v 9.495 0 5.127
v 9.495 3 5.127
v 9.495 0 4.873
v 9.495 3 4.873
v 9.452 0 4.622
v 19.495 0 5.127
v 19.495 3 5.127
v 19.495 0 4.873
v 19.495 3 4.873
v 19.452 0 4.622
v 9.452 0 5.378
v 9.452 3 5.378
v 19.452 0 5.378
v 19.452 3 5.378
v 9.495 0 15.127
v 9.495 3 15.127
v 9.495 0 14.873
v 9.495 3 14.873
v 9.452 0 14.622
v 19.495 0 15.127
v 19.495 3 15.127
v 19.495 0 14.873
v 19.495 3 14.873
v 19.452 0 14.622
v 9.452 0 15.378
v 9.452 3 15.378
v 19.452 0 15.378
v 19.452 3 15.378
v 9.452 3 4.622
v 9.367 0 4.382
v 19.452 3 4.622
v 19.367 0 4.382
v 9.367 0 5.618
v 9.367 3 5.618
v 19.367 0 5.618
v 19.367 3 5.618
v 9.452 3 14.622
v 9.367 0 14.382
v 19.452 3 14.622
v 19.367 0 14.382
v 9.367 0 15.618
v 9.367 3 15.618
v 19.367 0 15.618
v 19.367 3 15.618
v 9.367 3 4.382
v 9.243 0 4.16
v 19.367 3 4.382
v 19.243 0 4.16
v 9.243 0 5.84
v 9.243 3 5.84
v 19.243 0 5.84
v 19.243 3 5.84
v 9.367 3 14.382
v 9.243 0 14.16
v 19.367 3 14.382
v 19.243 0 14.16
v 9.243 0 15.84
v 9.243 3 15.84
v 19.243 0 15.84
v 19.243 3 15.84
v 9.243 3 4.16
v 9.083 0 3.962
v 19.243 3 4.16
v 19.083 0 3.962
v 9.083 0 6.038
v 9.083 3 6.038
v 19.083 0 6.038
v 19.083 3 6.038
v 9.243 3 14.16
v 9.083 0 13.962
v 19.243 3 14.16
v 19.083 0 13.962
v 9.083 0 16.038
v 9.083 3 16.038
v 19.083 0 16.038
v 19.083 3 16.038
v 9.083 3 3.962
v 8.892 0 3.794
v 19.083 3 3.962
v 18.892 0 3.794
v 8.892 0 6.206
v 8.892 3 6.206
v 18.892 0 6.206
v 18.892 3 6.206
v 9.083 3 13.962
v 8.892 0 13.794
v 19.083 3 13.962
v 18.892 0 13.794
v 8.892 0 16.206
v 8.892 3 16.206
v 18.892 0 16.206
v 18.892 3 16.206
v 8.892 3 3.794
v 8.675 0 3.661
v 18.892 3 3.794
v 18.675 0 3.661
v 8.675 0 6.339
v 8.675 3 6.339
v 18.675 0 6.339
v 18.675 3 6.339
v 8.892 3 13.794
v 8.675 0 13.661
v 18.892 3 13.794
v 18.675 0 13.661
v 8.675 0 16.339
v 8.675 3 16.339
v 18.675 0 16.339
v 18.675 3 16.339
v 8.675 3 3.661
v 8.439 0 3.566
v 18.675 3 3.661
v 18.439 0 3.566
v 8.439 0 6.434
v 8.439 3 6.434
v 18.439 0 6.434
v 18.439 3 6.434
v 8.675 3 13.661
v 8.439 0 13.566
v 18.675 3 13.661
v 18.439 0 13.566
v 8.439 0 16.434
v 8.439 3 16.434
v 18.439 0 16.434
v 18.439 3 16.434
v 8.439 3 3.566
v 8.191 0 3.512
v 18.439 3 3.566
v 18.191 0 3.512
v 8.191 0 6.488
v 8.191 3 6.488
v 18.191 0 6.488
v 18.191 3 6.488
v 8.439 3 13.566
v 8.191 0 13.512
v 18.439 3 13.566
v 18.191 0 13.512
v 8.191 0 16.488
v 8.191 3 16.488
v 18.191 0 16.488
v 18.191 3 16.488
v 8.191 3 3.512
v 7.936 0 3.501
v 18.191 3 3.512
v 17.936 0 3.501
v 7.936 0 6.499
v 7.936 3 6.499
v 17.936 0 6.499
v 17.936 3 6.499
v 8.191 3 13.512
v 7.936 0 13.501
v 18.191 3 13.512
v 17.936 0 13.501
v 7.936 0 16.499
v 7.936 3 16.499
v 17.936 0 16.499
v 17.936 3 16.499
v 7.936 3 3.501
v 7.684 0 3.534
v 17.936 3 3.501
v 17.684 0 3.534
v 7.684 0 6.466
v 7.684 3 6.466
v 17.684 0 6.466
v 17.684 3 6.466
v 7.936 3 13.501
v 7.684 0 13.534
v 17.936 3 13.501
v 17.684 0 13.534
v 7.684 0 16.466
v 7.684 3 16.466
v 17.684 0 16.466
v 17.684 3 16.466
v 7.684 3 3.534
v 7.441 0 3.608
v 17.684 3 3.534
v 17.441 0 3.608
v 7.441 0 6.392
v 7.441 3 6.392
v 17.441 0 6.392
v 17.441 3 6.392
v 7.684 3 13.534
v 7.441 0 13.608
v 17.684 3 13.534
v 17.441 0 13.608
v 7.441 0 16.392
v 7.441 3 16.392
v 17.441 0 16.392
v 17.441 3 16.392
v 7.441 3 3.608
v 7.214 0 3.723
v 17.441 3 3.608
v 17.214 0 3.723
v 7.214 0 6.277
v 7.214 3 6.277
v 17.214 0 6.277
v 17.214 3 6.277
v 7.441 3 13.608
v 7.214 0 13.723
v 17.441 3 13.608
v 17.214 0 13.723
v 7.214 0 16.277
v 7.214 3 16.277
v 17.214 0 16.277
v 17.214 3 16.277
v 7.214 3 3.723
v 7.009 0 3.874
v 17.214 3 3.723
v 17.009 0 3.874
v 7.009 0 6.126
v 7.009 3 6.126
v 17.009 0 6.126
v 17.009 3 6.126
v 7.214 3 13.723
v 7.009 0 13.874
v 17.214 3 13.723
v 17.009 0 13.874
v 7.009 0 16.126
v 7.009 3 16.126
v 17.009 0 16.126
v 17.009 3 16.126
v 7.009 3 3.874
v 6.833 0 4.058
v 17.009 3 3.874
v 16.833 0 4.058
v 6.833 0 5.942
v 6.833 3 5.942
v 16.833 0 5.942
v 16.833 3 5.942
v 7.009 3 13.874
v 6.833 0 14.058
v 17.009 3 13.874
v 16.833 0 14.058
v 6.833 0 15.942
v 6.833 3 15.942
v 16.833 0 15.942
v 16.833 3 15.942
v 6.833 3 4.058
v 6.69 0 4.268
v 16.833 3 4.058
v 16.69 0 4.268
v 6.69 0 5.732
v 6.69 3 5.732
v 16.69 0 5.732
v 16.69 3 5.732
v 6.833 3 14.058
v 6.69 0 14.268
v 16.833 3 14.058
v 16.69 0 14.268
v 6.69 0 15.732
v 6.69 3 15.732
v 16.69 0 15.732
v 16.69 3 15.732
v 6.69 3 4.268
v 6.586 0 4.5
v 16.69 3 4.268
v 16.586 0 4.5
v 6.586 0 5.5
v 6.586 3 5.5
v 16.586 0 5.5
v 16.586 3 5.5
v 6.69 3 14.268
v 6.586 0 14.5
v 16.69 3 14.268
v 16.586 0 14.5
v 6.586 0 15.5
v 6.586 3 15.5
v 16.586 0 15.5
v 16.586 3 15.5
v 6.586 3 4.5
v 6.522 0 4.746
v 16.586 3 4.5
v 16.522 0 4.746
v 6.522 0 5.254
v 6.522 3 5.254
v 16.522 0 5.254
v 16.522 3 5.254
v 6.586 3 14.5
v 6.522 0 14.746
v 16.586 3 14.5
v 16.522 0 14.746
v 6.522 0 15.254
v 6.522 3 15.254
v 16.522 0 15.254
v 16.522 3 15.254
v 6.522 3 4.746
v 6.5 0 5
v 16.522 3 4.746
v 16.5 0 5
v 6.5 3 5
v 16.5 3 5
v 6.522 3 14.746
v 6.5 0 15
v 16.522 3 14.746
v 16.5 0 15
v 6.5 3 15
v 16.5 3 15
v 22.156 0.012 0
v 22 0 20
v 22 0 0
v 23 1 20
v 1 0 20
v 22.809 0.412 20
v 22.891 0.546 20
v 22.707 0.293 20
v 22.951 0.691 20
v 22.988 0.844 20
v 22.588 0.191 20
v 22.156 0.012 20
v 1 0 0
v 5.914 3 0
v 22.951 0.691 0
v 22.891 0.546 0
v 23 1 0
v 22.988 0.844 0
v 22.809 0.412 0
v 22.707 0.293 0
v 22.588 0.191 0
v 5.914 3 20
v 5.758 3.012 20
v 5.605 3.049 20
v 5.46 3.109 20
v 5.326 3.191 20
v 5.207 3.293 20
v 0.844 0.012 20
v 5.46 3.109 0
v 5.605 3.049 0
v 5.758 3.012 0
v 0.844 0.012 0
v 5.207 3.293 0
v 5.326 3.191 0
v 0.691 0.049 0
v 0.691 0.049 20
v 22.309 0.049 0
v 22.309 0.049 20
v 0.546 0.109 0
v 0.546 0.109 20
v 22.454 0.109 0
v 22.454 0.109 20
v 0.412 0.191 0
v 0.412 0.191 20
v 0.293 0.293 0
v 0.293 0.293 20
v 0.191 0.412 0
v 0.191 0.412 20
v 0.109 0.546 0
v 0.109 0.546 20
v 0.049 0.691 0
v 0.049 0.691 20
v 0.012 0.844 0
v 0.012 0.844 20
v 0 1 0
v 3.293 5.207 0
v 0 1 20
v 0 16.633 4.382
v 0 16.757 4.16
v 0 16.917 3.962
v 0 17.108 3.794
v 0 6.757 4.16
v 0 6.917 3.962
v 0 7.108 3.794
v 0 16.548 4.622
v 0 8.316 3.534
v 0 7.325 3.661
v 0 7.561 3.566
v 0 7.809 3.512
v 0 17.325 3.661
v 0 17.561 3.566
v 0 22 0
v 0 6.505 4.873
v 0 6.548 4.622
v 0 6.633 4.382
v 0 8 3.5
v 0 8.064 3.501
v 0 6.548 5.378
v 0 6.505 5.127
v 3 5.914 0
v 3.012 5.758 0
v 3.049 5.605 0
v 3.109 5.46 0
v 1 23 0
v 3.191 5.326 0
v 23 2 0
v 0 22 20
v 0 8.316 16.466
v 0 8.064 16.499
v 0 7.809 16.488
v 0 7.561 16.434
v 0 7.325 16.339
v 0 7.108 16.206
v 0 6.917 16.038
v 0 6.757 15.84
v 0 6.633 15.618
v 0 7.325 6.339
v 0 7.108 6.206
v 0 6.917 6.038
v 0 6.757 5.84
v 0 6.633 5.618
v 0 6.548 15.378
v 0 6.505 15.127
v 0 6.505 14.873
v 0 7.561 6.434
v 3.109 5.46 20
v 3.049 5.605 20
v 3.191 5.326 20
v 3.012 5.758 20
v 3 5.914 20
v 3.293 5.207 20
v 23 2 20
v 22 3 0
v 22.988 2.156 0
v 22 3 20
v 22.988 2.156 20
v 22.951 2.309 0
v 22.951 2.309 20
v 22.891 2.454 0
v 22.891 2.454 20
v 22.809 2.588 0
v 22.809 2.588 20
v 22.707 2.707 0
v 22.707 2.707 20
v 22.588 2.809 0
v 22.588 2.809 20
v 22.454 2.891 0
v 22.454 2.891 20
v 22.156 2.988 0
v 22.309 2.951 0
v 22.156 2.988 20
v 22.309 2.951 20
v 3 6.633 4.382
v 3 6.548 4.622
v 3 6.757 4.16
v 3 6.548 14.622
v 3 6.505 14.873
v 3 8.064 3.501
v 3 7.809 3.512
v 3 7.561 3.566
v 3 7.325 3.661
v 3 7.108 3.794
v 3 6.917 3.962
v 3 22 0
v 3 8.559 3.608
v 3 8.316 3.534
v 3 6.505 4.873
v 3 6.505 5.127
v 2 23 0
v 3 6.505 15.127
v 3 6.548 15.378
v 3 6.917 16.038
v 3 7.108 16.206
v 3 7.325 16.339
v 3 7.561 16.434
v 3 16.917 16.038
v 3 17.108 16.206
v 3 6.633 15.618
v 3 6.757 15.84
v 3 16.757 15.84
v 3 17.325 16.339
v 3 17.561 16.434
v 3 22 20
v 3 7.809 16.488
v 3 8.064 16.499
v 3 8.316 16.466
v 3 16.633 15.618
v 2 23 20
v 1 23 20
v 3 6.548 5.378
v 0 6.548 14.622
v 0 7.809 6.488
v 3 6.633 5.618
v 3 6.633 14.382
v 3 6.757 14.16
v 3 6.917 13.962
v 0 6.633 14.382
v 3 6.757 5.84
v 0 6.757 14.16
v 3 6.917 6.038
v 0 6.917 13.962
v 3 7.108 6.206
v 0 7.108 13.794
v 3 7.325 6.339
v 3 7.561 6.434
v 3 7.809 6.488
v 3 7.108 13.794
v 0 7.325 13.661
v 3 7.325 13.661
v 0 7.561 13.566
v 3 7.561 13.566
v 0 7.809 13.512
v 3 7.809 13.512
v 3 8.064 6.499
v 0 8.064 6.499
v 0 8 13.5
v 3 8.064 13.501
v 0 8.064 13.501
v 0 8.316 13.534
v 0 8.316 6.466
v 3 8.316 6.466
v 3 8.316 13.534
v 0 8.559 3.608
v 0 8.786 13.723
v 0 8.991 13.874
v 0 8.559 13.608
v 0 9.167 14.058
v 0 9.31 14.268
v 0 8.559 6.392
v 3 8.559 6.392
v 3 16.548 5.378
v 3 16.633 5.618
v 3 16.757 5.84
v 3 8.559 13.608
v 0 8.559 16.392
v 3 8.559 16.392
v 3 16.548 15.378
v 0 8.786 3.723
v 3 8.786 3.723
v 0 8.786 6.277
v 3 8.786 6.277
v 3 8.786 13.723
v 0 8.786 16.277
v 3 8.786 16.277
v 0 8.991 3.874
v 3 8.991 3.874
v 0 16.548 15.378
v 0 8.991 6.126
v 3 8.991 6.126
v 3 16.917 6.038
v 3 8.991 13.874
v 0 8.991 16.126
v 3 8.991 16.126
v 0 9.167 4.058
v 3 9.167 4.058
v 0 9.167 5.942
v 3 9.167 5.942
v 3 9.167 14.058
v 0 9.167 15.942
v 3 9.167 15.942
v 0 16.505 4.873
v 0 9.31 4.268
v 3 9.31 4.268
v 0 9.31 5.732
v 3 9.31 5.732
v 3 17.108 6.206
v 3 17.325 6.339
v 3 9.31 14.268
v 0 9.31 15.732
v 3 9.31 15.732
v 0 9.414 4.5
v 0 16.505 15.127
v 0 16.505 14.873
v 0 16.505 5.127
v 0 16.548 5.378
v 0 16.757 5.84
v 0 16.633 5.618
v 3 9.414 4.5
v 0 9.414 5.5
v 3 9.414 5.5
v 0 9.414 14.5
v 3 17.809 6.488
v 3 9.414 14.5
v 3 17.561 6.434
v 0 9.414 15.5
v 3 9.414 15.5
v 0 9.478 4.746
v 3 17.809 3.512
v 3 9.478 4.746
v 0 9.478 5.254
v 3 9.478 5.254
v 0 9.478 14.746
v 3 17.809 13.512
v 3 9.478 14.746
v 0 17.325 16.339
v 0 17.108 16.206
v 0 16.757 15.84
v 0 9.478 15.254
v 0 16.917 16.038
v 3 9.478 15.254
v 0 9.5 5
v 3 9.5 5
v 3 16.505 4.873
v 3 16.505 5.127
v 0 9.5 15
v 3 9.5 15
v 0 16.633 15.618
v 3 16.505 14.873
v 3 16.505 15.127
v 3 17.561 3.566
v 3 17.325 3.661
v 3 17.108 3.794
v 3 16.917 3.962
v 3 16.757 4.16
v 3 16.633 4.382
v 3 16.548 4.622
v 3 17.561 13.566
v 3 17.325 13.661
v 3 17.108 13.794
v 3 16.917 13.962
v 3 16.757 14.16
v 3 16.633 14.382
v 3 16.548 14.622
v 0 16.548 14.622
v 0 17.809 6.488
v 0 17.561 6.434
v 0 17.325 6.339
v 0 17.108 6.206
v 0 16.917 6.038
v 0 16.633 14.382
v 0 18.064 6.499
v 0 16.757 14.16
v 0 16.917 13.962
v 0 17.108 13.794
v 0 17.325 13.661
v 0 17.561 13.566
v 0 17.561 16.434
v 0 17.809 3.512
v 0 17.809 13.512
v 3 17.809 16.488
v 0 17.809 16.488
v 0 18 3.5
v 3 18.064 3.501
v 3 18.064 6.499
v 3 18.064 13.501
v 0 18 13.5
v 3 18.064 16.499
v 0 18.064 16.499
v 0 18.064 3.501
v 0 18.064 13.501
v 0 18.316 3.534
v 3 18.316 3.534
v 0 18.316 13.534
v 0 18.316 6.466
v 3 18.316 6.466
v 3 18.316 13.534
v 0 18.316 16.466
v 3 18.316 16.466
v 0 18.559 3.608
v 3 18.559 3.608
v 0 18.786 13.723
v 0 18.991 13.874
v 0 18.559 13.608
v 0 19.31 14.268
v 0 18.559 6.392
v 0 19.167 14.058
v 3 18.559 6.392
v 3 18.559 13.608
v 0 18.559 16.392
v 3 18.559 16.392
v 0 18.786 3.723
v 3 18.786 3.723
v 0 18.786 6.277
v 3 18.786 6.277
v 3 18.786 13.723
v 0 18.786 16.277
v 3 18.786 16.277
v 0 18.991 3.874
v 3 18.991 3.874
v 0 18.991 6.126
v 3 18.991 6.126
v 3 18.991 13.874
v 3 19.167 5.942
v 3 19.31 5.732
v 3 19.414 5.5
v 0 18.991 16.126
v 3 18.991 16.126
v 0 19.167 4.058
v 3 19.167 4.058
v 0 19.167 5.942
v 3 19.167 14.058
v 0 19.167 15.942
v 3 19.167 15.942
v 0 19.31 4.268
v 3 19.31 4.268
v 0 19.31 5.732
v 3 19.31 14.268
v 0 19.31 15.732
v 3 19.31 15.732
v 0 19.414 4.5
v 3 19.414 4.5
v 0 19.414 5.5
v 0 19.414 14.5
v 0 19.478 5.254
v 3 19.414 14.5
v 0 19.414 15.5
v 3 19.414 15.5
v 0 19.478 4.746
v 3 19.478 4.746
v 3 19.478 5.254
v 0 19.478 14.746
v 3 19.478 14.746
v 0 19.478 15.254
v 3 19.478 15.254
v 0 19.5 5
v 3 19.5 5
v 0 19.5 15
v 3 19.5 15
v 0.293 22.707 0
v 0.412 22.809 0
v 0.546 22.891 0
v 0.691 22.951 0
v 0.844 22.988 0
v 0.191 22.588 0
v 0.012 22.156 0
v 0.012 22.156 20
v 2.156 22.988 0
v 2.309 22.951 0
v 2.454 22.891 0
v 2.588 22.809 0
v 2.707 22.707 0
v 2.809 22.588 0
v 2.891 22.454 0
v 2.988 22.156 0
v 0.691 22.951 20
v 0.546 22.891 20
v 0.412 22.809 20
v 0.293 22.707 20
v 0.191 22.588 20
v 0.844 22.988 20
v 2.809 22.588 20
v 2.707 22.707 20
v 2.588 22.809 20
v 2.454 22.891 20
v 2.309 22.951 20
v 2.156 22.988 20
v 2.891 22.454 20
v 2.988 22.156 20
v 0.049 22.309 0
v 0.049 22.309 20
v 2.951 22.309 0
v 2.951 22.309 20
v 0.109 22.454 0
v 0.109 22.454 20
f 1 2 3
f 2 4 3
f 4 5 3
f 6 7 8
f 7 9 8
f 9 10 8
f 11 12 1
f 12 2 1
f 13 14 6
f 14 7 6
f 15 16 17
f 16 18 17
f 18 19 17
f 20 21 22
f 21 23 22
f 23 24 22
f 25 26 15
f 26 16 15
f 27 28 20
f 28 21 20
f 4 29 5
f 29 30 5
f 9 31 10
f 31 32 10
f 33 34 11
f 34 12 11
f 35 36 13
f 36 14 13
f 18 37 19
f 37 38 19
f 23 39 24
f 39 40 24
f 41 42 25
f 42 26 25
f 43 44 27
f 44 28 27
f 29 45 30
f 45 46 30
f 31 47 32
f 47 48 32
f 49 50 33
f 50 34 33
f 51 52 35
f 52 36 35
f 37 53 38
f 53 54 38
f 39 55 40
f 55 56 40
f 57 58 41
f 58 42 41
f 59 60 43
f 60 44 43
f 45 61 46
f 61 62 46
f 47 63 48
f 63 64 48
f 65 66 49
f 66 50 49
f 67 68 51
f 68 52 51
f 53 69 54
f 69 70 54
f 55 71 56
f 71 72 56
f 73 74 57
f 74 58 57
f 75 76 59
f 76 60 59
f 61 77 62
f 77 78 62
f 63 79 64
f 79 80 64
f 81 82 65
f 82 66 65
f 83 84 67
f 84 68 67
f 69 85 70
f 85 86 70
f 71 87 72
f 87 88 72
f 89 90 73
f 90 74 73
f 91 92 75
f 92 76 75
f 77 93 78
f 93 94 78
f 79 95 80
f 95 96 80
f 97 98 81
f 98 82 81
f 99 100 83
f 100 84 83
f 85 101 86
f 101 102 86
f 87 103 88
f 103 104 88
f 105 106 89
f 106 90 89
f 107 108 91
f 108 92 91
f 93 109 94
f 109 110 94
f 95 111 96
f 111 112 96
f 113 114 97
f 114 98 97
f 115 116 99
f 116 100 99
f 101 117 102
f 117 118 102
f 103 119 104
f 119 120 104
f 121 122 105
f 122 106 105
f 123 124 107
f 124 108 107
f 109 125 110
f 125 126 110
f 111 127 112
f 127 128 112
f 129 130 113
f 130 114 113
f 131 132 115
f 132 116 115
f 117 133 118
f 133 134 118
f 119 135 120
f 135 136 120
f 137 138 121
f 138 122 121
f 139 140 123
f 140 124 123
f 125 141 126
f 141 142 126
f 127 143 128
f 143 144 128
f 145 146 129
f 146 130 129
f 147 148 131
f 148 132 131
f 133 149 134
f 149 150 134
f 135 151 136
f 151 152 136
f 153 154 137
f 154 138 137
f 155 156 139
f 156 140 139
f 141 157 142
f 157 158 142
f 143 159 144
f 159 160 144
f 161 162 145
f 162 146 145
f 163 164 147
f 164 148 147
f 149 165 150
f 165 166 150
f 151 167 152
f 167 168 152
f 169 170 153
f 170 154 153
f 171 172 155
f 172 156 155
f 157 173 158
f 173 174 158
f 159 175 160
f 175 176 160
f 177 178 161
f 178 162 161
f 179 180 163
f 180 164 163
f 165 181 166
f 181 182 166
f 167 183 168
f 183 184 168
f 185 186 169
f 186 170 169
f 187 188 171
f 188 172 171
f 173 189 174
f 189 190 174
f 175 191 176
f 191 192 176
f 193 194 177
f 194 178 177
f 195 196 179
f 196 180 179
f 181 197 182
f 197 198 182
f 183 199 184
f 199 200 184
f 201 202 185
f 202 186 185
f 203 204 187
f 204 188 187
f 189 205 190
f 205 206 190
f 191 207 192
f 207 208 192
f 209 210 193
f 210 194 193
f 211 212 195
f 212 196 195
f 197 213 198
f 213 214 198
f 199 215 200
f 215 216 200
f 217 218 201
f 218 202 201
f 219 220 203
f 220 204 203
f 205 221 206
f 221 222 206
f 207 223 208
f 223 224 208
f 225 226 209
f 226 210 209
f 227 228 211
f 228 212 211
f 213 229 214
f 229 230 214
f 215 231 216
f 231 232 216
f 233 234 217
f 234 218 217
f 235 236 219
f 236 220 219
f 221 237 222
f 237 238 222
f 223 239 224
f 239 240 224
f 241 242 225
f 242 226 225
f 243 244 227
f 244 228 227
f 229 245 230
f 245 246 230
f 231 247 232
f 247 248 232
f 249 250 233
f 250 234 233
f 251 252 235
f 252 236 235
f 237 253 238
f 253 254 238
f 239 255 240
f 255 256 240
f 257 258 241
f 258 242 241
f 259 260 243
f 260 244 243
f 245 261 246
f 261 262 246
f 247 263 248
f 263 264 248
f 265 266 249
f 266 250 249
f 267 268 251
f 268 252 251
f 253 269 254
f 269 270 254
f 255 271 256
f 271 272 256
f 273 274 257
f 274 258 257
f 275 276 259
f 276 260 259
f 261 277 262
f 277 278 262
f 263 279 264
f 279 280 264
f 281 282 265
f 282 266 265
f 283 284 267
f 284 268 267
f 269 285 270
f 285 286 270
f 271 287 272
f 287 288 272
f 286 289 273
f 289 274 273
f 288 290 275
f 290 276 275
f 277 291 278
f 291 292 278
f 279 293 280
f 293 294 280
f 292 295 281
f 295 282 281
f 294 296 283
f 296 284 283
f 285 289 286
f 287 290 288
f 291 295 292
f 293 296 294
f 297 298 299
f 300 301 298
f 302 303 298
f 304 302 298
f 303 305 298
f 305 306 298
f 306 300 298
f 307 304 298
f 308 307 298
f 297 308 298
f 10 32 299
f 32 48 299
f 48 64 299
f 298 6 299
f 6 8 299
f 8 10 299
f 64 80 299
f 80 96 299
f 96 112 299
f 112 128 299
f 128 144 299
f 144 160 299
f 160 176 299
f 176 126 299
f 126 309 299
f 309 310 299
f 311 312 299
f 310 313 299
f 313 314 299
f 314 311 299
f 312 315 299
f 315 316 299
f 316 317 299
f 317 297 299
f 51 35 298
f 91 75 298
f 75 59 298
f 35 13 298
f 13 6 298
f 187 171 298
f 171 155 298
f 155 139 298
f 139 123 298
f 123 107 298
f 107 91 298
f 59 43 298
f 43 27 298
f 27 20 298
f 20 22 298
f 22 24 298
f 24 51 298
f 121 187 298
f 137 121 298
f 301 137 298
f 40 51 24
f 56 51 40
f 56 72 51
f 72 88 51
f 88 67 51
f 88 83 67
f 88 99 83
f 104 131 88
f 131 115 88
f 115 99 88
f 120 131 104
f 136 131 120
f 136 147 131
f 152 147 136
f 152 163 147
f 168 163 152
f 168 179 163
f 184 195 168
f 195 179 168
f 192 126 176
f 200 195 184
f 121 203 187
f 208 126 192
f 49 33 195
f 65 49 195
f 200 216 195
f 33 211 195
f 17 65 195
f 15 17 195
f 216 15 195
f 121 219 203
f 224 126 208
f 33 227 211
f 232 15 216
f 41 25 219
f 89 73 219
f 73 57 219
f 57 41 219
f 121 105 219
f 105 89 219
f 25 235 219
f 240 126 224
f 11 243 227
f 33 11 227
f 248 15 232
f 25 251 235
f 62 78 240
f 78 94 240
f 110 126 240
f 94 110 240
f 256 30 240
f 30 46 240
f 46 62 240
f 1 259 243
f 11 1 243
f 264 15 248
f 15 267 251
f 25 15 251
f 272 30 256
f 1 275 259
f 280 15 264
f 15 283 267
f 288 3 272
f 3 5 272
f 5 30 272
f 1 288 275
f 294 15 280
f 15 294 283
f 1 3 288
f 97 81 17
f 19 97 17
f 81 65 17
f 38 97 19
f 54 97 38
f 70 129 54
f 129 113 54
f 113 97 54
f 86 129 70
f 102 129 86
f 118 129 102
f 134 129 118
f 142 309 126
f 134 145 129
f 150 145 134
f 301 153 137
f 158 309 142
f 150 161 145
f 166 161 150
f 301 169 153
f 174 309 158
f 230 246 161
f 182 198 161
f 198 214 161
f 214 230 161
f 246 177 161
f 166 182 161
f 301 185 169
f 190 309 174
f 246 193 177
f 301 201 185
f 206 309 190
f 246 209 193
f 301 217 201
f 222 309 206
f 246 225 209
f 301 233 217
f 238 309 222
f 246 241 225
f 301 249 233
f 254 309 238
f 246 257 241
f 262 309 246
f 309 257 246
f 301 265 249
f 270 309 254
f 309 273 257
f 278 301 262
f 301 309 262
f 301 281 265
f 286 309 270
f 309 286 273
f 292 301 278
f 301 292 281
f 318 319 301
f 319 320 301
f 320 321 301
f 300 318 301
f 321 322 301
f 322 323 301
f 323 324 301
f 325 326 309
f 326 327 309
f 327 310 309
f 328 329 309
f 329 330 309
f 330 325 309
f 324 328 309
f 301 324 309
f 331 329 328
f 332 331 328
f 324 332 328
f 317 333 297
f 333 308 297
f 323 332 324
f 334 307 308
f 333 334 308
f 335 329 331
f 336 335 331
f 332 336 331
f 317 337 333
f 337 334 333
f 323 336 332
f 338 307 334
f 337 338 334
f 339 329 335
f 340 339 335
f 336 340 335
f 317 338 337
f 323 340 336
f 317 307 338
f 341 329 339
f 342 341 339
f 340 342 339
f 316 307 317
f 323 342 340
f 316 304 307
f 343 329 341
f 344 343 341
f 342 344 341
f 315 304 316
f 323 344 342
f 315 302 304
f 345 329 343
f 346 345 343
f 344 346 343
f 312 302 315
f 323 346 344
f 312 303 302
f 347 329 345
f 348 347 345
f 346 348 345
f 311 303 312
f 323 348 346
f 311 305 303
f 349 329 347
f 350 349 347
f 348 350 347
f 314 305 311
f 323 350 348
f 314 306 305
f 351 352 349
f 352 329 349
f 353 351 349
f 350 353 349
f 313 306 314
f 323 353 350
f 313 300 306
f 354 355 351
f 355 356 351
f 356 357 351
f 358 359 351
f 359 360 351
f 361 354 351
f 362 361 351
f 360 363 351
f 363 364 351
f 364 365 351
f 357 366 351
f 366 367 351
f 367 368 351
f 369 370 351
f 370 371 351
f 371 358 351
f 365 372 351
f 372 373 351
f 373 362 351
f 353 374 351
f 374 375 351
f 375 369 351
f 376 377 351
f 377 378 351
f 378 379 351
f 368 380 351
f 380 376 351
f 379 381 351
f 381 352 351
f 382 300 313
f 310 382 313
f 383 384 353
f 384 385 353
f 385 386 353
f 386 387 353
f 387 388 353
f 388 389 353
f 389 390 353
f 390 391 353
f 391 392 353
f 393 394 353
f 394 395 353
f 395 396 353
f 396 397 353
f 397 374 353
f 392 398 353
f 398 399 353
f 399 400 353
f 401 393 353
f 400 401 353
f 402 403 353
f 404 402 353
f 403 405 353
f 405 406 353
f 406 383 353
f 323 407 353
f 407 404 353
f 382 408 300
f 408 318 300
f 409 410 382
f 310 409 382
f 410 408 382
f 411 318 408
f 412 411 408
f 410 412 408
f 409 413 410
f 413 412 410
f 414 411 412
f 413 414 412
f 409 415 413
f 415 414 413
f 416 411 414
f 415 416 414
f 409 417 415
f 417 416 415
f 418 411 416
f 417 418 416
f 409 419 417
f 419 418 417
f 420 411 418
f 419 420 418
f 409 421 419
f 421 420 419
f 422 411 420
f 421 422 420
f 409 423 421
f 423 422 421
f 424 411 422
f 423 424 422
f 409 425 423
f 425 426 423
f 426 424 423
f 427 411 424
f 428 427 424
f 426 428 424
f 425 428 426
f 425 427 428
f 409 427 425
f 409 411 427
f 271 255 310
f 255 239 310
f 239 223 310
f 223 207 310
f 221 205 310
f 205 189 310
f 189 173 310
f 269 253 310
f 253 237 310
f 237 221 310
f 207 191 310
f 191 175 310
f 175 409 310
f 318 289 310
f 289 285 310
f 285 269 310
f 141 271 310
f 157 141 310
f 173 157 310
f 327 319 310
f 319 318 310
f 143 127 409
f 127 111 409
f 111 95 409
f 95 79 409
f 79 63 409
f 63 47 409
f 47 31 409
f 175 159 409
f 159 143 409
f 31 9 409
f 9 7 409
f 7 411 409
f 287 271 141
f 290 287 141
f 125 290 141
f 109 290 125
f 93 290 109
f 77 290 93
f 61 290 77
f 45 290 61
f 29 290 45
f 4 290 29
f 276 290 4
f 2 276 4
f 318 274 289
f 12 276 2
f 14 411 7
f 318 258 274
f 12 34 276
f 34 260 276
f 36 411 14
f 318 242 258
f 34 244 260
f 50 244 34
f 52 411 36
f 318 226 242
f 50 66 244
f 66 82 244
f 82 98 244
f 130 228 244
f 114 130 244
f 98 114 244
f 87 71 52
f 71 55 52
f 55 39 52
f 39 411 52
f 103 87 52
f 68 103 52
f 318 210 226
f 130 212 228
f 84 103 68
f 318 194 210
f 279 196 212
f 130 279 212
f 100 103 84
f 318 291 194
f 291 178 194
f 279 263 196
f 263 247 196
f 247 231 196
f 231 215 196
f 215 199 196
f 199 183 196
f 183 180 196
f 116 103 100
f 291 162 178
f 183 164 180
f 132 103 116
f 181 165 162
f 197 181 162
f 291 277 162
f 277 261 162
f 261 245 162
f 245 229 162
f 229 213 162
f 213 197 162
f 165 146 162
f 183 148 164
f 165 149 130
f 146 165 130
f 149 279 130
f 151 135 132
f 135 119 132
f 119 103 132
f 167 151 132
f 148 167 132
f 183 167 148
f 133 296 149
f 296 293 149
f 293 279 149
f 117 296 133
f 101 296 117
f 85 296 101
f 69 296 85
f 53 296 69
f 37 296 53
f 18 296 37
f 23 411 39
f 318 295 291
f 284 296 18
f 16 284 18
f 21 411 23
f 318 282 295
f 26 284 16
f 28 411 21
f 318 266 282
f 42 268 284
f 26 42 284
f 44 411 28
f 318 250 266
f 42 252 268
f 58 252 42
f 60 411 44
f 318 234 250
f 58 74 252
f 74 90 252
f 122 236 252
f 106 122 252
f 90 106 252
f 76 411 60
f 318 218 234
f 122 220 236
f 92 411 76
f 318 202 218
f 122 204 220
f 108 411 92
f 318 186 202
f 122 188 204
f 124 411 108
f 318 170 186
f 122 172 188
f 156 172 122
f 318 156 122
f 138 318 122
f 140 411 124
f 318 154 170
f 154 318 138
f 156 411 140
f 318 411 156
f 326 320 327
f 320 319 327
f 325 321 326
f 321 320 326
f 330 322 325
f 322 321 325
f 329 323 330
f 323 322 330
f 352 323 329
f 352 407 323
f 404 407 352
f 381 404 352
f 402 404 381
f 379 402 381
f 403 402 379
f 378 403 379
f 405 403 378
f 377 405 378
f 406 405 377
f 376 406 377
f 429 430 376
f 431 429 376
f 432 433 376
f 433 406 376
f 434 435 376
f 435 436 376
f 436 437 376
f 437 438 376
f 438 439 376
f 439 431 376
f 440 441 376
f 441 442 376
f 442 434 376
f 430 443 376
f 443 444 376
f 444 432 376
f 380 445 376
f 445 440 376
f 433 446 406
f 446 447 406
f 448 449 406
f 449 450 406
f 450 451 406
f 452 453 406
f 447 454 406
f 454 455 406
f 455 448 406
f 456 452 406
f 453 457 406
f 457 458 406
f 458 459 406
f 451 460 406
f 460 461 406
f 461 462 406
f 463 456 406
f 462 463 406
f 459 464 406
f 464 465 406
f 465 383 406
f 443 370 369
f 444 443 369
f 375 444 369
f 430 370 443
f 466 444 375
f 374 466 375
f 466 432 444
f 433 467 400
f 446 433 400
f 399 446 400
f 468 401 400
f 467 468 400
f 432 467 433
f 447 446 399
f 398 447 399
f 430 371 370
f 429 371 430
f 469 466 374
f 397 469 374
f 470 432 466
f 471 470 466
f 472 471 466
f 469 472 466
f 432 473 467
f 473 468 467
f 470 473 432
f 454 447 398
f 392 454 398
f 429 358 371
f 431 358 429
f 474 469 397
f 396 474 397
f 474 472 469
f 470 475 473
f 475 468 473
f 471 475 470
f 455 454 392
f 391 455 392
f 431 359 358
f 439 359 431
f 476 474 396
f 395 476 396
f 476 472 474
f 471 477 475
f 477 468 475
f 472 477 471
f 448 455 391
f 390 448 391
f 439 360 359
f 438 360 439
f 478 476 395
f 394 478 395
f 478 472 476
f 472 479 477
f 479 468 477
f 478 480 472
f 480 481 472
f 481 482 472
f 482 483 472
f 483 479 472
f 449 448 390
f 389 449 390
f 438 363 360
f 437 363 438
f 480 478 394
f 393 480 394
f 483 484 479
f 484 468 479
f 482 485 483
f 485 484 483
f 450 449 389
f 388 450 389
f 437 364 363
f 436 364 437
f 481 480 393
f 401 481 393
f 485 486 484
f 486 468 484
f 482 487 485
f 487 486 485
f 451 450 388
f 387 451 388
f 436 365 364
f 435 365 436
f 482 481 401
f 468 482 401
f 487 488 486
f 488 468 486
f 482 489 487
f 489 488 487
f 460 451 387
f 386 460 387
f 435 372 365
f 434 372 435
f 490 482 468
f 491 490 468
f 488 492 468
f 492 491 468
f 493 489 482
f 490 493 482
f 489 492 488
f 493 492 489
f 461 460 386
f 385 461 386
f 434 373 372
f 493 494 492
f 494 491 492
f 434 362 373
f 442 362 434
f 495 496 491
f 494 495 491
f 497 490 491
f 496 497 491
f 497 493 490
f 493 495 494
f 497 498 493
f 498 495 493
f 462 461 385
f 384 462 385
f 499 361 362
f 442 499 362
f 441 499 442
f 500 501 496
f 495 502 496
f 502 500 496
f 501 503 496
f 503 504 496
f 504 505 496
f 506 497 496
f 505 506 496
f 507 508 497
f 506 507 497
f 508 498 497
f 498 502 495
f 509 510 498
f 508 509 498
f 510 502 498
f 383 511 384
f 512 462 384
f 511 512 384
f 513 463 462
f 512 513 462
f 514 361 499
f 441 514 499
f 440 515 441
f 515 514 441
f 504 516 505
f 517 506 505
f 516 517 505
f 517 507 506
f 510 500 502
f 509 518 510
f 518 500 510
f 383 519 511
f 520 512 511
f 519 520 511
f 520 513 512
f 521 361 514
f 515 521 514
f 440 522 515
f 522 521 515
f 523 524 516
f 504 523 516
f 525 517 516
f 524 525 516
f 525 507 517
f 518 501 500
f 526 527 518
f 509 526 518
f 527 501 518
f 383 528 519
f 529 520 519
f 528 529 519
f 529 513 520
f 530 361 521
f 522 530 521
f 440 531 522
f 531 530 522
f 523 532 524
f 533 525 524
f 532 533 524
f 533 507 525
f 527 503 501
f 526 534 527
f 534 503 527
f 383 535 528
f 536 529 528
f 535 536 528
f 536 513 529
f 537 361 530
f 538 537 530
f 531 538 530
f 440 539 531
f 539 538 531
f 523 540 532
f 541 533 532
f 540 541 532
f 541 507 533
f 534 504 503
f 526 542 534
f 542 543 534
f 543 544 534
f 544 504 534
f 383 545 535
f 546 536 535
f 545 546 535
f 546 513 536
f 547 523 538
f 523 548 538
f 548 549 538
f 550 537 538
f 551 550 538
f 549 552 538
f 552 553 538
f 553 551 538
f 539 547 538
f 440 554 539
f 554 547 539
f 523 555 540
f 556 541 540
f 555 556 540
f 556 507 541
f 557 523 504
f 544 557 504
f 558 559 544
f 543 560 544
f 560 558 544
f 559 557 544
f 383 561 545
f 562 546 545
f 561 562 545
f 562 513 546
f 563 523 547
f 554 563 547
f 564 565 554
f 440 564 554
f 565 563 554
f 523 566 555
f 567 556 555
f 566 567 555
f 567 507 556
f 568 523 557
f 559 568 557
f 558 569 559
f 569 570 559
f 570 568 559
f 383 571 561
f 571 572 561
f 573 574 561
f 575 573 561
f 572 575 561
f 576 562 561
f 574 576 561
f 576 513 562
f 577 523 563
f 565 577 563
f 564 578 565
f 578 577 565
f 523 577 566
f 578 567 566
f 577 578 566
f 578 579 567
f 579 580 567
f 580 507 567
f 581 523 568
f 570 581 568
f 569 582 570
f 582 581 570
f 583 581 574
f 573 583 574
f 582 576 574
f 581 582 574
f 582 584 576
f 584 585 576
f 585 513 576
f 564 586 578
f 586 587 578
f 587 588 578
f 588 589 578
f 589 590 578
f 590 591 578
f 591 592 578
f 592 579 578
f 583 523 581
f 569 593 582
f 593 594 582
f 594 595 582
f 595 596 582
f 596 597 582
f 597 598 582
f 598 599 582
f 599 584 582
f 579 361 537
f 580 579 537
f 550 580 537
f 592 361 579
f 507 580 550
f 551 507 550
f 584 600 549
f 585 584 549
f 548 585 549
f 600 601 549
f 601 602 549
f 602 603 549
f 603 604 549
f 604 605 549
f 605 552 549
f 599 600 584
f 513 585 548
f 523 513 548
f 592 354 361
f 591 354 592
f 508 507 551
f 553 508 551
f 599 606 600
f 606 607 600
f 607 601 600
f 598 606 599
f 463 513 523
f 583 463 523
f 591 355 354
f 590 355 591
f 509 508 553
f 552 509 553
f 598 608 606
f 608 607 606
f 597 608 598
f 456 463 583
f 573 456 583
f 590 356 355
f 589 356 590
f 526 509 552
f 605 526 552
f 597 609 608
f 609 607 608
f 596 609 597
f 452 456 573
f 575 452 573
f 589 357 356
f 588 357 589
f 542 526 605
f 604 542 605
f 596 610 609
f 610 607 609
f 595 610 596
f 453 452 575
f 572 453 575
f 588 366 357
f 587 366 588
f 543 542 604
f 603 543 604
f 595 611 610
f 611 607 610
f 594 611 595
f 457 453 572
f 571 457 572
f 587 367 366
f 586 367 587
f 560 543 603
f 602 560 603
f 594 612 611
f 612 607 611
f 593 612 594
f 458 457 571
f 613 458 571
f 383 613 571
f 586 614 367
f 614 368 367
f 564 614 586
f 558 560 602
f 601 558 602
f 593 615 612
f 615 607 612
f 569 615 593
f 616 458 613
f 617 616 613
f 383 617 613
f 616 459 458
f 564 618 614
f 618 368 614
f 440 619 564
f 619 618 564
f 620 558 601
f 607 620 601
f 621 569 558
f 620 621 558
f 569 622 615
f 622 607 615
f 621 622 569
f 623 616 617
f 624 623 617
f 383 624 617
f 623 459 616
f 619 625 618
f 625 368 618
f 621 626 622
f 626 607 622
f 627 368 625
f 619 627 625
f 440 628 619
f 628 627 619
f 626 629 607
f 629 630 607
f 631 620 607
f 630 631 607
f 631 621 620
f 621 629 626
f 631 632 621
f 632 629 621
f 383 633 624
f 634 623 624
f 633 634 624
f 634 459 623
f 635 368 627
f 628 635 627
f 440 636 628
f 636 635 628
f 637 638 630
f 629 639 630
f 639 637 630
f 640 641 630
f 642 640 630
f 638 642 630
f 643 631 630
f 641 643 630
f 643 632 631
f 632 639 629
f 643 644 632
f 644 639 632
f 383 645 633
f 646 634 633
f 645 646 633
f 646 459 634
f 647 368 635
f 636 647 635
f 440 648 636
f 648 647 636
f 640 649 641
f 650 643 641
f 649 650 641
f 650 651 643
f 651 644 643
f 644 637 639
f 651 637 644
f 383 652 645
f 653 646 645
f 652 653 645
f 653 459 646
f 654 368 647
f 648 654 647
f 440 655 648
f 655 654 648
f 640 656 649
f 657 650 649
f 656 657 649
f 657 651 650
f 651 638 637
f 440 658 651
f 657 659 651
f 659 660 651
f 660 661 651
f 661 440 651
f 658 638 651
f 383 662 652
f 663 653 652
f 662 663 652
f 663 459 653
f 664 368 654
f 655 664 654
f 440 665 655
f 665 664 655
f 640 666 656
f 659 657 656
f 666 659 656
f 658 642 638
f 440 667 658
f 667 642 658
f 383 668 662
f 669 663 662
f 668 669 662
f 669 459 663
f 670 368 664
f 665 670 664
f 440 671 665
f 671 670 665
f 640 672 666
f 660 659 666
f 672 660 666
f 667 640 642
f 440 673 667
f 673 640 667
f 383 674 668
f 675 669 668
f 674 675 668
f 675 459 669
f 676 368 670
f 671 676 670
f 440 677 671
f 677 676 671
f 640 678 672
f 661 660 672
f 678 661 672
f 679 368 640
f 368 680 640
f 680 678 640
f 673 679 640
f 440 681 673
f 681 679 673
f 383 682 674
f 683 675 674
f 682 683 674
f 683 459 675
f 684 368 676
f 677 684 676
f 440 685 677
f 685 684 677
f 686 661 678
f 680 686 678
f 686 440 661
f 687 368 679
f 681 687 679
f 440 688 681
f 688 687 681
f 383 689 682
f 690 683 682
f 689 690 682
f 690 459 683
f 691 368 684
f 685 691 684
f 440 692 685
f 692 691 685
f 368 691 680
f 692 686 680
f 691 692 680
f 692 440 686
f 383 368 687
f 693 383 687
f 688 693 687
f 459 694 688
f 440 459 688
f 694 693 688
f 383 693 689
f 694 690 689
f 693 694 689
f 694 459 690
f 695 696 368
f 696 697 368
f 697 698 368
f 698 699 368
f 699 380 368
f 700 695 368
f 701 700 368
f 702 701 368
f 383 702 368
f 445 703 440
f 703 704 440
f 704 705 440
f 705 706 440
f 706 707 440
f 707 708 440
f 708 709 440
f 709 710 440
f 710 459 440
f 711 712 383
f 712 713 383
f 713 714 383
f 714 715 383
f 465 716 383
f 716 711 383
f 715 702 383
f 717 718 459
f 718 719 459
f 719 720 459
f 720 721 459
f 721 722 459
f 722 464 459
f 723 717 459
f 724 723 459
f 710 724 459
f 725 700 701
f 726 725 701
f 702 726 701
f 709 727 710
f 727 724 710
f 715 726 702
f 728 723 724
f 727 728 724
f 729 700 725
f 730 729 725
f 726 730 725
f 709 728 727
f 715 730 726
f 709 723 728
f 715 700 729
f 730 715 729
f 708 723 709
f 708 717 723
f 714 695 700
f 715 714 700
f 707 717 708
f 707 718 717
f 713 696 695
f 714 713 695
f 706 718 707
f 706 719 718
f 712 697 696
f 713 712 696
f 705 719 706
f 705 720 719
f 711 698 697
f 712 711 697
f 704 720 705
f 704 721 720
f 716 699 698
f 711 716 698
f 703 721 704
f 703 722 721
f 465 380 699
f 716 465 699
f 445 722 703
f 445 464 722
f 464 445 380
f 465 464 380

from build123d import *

# Parameters (mm, degrees)
BOSS_EXTRU_1_DEPTH      = 20
ESQUISSE2_R             = 1.5
ENL_V_MAT_EXTRU_1_DEPTH = 20
ESQUISSE3_R             = 1.5
ENL_V_MAT_EXTRU_2_DEPTH = 20
CHANFREIN1_SIZE         = 2.5
CONG_2_R                = 1


with BuildPart() as part:
    # Esquisse1 → Boss.-Extru.1 (new body)
    with BuildSketch(Plane.XY):
        Polygon((23, 0), (0, 0), (0, 23), (3, 23), (3, 3), (23, 3), align=None)
    extrude(amount=BOSS_EXTRU_1_DEPTH)

    # Esquisse2 → Enlèv. mat.-Extru.1 (cut)
    with BuildSketch(Plane(origin=(0, 3, 0), x_dir=(1, 0, 0), z_dir=(0, 1, 0))):
        with Locations((8, -15)):
            Circle(ESQUISSE2_R)
        with Locations((18, -15)):
            Circle(ESQUISSE2_R)
        with Locations((18, -5)):
            Circle(ESQUISSE2_R)
        with Locations((8, -5)):
            Circle(ESQUISSE2_R)
    extrude(amount=-ENL_V_MAT_EXTRU_1_DEPTH, mode=Mode.SUBTRACT)

    # Esquisse3 → Enlèv. mat.-Extru.2 (cut)
    with BuildSketch(Plane(origin=(3, 0, 0), x_dir=(0, 0, -1), z_dir=(1, 0, 0))):
        with Locations((-15, 18)):
            Circle(ESQUISSE3_R)
        with Locations((-5, 18)):
            Circle(ESQUISSE3_R)
        with Locations((-5, 8)):
            Circle(ESQUISSE3_R)
        with Locations((-15, 8)):
            Circle(ESQUISSE3_R)
    extrude(amount=-ENL_V_MAT_EXTRU_2_DEPTH, mode=Mode.SUBTRACT)

    # Chanfrein1
    chanfrein1_edges = [part.edges().sort_by_distance(p)[0] for p in [
        (3, 3, 10),
    ]]
    chamfer(chanfrein1_edges, length=CHANFREIN1_SIZE)

    # Congé2
    cong_2_edges = [part.edges().sort_by_distance(p)[0] for p in [
        (23, 0, 10),
        (0, 0, 10),
        (0, 23, 10),
        (3, 23, 10),
        (23, 3, 10),
        (3, 5.5, 10),
        (5.5, 3, 10),
    ]]
    fillet(cong_2_edges, radius=CONG_2_R)


solid = part.part
